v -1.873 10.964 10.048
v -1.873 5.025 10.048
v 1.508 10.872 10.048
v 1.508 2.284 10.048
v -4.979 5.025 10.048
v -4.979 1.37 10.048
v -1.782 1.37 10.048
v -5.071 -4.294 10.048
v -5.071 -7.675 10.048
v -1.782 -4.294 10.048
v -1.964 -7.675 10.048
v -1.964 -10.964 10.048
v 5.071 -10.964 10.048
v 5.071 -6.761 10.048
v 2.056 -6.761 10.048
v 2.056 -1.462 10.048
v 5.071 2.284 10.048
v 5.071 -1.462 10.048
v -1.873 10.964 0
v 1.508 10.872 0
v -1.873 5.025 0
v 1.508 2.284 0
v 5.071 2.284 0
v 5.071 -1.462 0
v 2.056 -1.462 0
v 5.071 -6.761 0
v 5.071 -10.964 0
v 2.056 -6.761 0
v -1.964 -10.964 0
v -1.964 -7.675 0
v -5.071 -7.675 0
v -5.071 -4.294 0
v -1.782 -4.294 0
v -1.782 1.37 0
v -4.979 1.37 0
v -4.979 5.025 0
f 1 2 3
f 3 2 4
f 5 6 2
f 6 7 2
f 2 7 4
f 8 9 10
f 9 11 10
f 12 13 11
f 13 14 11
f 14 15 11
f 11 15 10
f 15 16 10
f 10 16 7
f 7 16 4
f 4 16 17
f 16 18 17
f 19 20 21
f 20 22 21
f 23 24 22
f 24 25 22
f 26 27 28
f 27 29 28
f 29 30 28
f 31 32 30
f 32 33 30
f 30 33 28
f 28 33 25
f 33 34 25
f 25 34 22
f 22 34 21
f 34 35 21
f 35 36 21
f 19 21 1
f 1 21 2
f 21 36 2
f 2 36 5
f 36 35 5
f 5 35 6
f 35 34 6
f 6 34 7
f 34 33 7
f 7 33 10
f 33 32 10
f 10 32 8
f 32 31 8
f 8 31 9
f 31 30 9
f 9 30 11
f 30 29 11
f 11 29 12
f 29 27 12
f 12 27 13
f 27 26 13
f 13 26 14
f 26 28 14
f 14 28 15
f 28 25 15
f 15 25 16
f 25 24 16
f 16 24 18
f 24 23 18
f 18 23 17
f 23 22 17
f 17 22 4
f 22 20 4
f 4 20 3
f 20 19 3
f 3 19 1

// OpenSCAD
module invaders_v2_missle1() 
{
	polyhedron(
		points=[
			[-1.872952, 10.96362, 10.04818],
			[-1.872952, 5.024995, 10.04818],
			[1.507504, 10.87226, 10.04818],
			[1.507504, 10.87226, 10.04818],
			[-1.872952, 5.024995, 10.04818],
			[1.507504, 2.284089, 10.04818],
			[-4.979313, 5.024995, 10.04818],
			[-4.979313, 1.370454, 10.04818],
			[-1.872952, 5.024995, 10.04818],
			[-4.979313, 1.370454, 10.04818],
			[-1.781582, 1.370454, 10.04818],
			[-1.872952, 5.024995, 10.04818],
			[-1.872952, 5.024995, 10.04818],
			[-1.781582, 1.370454, 10.04818],
			[1.507504, 2.284089, 10.04818],
			[-5.070675, -4.294086, 10.04818],
			[-5.070675, -7.674536, 10.04818],
			[-1.781582, -4.294086, 10.04818],
			[-5.070675, -7.674536, 10.04818],
			[-1.964314, -7.674536, 10.04818],
			[-1.781582, -4.294086, 10.04818],
			[-1.964314, -10.96362, 10.04818],
			[5.070675, -10.96362, 10.04818],
			[-1.964314, -7.674536, 10.04818],
			[5.070675, -10.96362, 10.04818],
			[5.070675, -6.760901, 10.04818],
			[-1.964314, -7.674536, 10.04818],
			[5.070675, -6.760901, 10.04818],
			[2.055683, -6.760901, 10.04818],
			[-1.964314, -7.674536, 10.04818],
			[-1.964314, -7.674536, 10.04818],
			[2.055683, -6.760901, 10.04818],
			[-1.781582, -4.294086, 10.04818],
			[2.055683, -6.760901, 10.04818],
			[2.055683, -1.461816, 10.04818],
			[-1.781582, -4.294086, 10.04818],
			[-1.781582, -4.294086, 10.04818],
			[2.055683, -1.461816, 10.04818],
			[-1.781582, 1.370454, 10.04818],
			[-1.781582, 1.370454, 10.04818],
			[2.055683, -1.461816, 10.04818],
			[1.507504, 2.284089, 10.04818],
			[1.507504, 2.284089, 10.04818],
			[2.055683, -1.461816, 10.04818],
			[5.070675, 2.284089, 10.04818],
			[2.055683, -1.461816, 10.04818],
			[5.070675, -1.461816, 10.04818],
			[5.070675, 2.284089, 10.04818],
			[-1.872952, 10.96362, 0.0],
			[1.507504, 10.87226, 0.0],
			[-1.872952, 5.024995, 2.220446e-16],
			[1.507504, 10.87226, 0.0],
			[1.507504, 2.284089, 4.440892e-16],
			[-1.872952, 5.024995, 2.220446e-16],
			[5.070675, 2.284089, 4.440892e-16],
			[5.070675, -1.461816, 6.661338e-16],
			[1.507504, 2.284089, 4.440892e-16],
			[5.070675, -1.461816, 6.661338e-16],
			[2.055683, -1.461816, 6.661338e-16],
			[1.507504, 2.284089, 4.440892e-16],
			[5.070675, -6.760901, 8.881784e-16],
			[5.070675, -10.96362, 1.332268e-15],
			[2.055683, -6.760901, 8.881784e-16],
			[5.070675, -10.96362, 1.332268e-15],
			[-1.964314, -10.96362, 1.332268e-15],
			[2.055683, -6.760901, 8.881784e-16],
			[-1.964314, -10.96362, 1.332268e-15],
			[-1.964314, -7.674536, 1.110223e-15],
			[2.055683, -6.760901, 8.881784e-16],
			[-5.070675, -7.674536, 1.110223e-15],
			[-5.070675, -4.294086, 8.881784e-16],
			[-1.964314, -7.674536, 1.110223e-15],
			[-5.070675, -4.294086, 8.881784e-16],
			[-1.781582, -4.294086, 8.881784e-16],
			[-1.964314, -7.674536, 1.110223e-15],
			[-1.964314, -7.674536, 1.110223e-15],
			[-1.781582, -4.294086, 8.881784e-16],
			[2.055683, -6.760901, 8.881784e-16],
			[2.055683, -6.760901, 8.881784e-16],
			[-1.781582, -4.294086, 8.881784e-16],
			[2.055683, -1.461816, 6.661338e-16],
			[-1.781582, -4.294086, 8.881784e-16],
			[-1.781582, 1.370454, 4.440892e-16],
			[2.055683, -1.461816, 6.661338e-16],
			[2.055683, -1.461816, 6.661338e-16],
			[-1.781582, 1.370454, 4.440892e-16],
			[1.507504, 2.284089, 4.440892e-16],
			[1.507504, 2.284089, 4.440892e-16],
			[-1.781582, 1.370454, 4.440892e-16],
			[-1.872952, 5.024995, 2.220446e-16],
			[-1.781582, 1.370454, 4.440892e-16],
			[-4.979313, 1.370454, 4.440892e-16],
			[-1.872952, 5.024995, 2.220446e-16],
			[-4.979313, 1.370454, 4.440892e-16],
			[-4.979313, 5.024995, 2.220446e-16],
			[-1.872952, 5.024995, 2.220446e-16],
			[-1.872952, 10.96362, 0.0],
			[-1.872952, 5.024995, 2.220446e-16],
			[-1.872952, 10.96362, 10.04818],
			[-1.872952, 10.96362, 10.04818],
			[-1.872952, 5.024995, 2.220446e-16],
			[-1.872952, 5.024995, 10.04818],
			[-1.872952, 5.024995, 2.220446e-16],
			[-4.979313, 5.024995, 2.220446e-16],
			[-1.872952, 5.024995, 10.04818],
			[-1.872952, 5.024995, 10.04818],
			[-4.979313, 5.024995, 2.220446e-16],
			[-4.979313, 5.024995, 10.04818],
			[-4.979313, 5.024995, 2.220446e-16],
			[-4.979313, 1.370454, 4.440892e-16],
			[-4.979313, 5.024995, 10.04818],
			[-4.979313, 5.024995, 10.04818],
			[-4.979313, 1.370454, 4.440892e-16],
			[-4.979313, 1.370454, 10.04818],
			[-4.979313, 1.370454, 4.440892e-16],
			[-1.781582, 1.370454, 4.440892e-16],
			[-4.979313, 1.370454, 10.04818],
			[-4.979313, 1.370454, 10.04818],
			[-1.781582, 1.370454, 4.440892e-16],
			[-1.781582, 1.370454, 10.04818],
			[-1.781582, 1.370454, 4.440892e-16],
			[-1.781582, -4.294086, 8.881784e-16],
			[-1.781582, 1.370454, 10.04818],
			[-1.781582, 1.370454, 10.04818],
			[-1.781582, -4.294086, 8.881784e-16],
			[-1.781582, -4.294086, 10.04818],
			[-1.781582, -4.294086, 8.881784e-16],
			[-5.070675, -4.294086, 8.881784e-16],
			[-1.781582, -4.294086, 10.04818],
			[-1.781582, -4.294086, 10.04818],
			[-5.070675, -4.294086, 8.881784e-16],
			[-5.070675, -4.294086, 10.04818],
			[-5.070675, -4.294086, 8.881784e-16],
			[-5.070675, -7.674536, 1.110223e-15],
			[-5.070675, -4.294086, 10.04818],
			[-5.070675, -4.294086, 10.04818],
			[-5.070675, -7.674536, 1.110223e-15],
			[-5.070675, -7.674536, 10.04818],
			[-5.070675, -7.674536, 1.110223e-15],
			[-1.964314, -7.674536, 1.110223e-15],
			[-5.070675, -7.674536, 10.04818],
			[-5.070675, -7.674536, 10.04818],
			[-1.964314, -7.674536, 1.110223e-15],
			[-1.964314, -7.674536, 10.04818],
			[-1.964314, -7.674536, 1.110223e-15],
			[-1.964314, -10.96362, 1.332268e-15],
			[-1.964314, -7.674536, 10.04818],
			[-1.964314, -7.674536, 10.04818],
			[-1.964314, -10.96362, 1.332268e-15],
			[-1.964314, -10.96362, 10.04818],
			[-1.964314, -10.96362, 1.332268e-15],
			[5.070675, -10.96362, 1.332268e-15],
			[-1.964314, -10.96362, 10.04818],
			[-1.964314, -10.96362, 10.04818],
			[5.070675, -10.96362, 1.332268e-15],
			[5.070675, -10.96362, 10.04818],
			[5.070675, -10.96362, 1.332268e-15],
			[5.070675, -6.760901, 8.881784e-16],
			[5.070675, -10.96362, 10.04818],
			[5.070675, -10.96362, 10.04818],
			[5.070675, -6.760901, 8.881784e-16],
			[5.070675, -6.760901, 10.04818],
			[5.070675, -6.760901, 8.881784e-16],
			[2.055683, -6.760901, 8.881784e-16],
			[5.070675, -6.760901, 10.04818],
			[5.070675, -6.760901, 10.04818],
			[2.055683, -6.760901, 8.881784e-16],
			[2.055683, -6.760901, 10.04818],
			[2.055683, -6.760901, 8.881784e-16],
			[2.055683, -1.461816, 6.661338e-16],
			[2.055683, -6.760901, 10.04818],
			[2.055683, -6.760901, 10.04818],
			[2.055683, -1.461816, 6.661338e-16],
			[2.055683, -1.461816, 10.04818],
			[2.055683, -1.461816, 6.661338e-16],
			[5.070675, -1.461816, 6.661338e-16],
			[2.055683, -1.461816, 10.04818],
			[2.055683, -1.461816, 10.04818],
			[5.070675, -1.461816, 6.661338e-16],
			[5.070675, -1.461816, 10.04818],
			[5.070675, -1.461816, 6.661338e-16],
			[5.070675, 2.284089, 4.440892e-16],
			[5.070675, -1.461816, 10.04818],
			[5.070675, -1.461816, 10.04818],
			[5.070675, 2.284089, 4.440892e-16],
			[5.070675, 2.284089, 10.04818],
			[5.070675, 2.284089, 4.440892e-16],
			[1.507504, 2.284089, 4.440892e-16],
			[5.070675, 2.284089, 10.04818],
			[5.070675, 2.284089, 10.04818],
			[1.507504, 2.284089, 4.440892e-16],
			[1.507504, 2.284089, 10.04818],
			[1.507504, 2.284089, 4.440892e-16],
			[1.507504, 10.87226, 0.0],
			[1.507504, 2.284089, 10.04818],
			[1.507504, 2.284089, 10.04818],
			[1.507504, 10.87226, 0.0],
			[1.507504, 10.87226, 10.04818],
			[1.507504, 10.87226, 0.0],
			[-1.872952, 10.96362, 0.0],
			[1.507504, 10.87226, 10.04818],
			[1.507504, 10.87226, 10.04818],
			[-1.872952, 10.96362, 0.0],
			[-1.872952, 10.96362, 10.04818]
		],
		faces=[
			[0, 1, 2],
			[3, 4, 5],
			[6, 7, 8],
			[9, 10, 11],
			[12, 13, 14],
			[15, 16, 17],
			[18, 19, 20],
			[21, 22, 23],
			[24, 25, 26],
			[27, 28, 29],
			[30, 31, 32],
			[33, 34, 35],
			[36, 37, 38],
			[39, 40, 41],
			[42, 43, 44],
			[45, 46, 47],
			[48, 49, 50],
			[51, 52, 53],
			[54, 55, 56],
			[57, 58, 59],
			[60, 61, 62],
			[63, 64, 65],
			[66, 67, 68],
			[69, 70, 71],
			[72, 73, 74],
			[75, 76, 77],
			[78, 79, 80],
			[81, 82, 83],
			[84, 85, 86],
			[87, 88, 89],
			[90, 91, 92],
			[93, 94, 95],
			[96, 97, 98],
			[99, 100, 101],
			[102, 103, 104],
			[105, 106, 107],
			[108, 109, 110],
			[111, 112, 113],
			[114, 115, 116],
			[117, 118, 119],
			[120, 121, 122],
			[123, 124, 125],
			[126, 127, 128],
			[129, 130, 131],
			[132, 133, 134],
			[135, 136, 137],
			[138, 139, 140],
			[141, 142, 143],
			[144, 145, 146],
			[147, 148, 149],
			[150, 151, 152],
			[153, 154, 155],
			[156, 157, 158],
			[159, 160, 161],
			[162, 163, 164],
			[165, 166, 167],
			[168, 169, 170],
			[171, 172, 173],
			[174, 175, 176],
			[177, 178, 179],
			[180, 181, 182],
			[183, 184, 185],
			[186, 187, 188],
			[189, 190, 191],
			[192, 193, 194],
			[195, 196, 197],
			[198, 199, 200],
			[201, 202, 203]
		]
	);
}


invaders_v2_missle1();
